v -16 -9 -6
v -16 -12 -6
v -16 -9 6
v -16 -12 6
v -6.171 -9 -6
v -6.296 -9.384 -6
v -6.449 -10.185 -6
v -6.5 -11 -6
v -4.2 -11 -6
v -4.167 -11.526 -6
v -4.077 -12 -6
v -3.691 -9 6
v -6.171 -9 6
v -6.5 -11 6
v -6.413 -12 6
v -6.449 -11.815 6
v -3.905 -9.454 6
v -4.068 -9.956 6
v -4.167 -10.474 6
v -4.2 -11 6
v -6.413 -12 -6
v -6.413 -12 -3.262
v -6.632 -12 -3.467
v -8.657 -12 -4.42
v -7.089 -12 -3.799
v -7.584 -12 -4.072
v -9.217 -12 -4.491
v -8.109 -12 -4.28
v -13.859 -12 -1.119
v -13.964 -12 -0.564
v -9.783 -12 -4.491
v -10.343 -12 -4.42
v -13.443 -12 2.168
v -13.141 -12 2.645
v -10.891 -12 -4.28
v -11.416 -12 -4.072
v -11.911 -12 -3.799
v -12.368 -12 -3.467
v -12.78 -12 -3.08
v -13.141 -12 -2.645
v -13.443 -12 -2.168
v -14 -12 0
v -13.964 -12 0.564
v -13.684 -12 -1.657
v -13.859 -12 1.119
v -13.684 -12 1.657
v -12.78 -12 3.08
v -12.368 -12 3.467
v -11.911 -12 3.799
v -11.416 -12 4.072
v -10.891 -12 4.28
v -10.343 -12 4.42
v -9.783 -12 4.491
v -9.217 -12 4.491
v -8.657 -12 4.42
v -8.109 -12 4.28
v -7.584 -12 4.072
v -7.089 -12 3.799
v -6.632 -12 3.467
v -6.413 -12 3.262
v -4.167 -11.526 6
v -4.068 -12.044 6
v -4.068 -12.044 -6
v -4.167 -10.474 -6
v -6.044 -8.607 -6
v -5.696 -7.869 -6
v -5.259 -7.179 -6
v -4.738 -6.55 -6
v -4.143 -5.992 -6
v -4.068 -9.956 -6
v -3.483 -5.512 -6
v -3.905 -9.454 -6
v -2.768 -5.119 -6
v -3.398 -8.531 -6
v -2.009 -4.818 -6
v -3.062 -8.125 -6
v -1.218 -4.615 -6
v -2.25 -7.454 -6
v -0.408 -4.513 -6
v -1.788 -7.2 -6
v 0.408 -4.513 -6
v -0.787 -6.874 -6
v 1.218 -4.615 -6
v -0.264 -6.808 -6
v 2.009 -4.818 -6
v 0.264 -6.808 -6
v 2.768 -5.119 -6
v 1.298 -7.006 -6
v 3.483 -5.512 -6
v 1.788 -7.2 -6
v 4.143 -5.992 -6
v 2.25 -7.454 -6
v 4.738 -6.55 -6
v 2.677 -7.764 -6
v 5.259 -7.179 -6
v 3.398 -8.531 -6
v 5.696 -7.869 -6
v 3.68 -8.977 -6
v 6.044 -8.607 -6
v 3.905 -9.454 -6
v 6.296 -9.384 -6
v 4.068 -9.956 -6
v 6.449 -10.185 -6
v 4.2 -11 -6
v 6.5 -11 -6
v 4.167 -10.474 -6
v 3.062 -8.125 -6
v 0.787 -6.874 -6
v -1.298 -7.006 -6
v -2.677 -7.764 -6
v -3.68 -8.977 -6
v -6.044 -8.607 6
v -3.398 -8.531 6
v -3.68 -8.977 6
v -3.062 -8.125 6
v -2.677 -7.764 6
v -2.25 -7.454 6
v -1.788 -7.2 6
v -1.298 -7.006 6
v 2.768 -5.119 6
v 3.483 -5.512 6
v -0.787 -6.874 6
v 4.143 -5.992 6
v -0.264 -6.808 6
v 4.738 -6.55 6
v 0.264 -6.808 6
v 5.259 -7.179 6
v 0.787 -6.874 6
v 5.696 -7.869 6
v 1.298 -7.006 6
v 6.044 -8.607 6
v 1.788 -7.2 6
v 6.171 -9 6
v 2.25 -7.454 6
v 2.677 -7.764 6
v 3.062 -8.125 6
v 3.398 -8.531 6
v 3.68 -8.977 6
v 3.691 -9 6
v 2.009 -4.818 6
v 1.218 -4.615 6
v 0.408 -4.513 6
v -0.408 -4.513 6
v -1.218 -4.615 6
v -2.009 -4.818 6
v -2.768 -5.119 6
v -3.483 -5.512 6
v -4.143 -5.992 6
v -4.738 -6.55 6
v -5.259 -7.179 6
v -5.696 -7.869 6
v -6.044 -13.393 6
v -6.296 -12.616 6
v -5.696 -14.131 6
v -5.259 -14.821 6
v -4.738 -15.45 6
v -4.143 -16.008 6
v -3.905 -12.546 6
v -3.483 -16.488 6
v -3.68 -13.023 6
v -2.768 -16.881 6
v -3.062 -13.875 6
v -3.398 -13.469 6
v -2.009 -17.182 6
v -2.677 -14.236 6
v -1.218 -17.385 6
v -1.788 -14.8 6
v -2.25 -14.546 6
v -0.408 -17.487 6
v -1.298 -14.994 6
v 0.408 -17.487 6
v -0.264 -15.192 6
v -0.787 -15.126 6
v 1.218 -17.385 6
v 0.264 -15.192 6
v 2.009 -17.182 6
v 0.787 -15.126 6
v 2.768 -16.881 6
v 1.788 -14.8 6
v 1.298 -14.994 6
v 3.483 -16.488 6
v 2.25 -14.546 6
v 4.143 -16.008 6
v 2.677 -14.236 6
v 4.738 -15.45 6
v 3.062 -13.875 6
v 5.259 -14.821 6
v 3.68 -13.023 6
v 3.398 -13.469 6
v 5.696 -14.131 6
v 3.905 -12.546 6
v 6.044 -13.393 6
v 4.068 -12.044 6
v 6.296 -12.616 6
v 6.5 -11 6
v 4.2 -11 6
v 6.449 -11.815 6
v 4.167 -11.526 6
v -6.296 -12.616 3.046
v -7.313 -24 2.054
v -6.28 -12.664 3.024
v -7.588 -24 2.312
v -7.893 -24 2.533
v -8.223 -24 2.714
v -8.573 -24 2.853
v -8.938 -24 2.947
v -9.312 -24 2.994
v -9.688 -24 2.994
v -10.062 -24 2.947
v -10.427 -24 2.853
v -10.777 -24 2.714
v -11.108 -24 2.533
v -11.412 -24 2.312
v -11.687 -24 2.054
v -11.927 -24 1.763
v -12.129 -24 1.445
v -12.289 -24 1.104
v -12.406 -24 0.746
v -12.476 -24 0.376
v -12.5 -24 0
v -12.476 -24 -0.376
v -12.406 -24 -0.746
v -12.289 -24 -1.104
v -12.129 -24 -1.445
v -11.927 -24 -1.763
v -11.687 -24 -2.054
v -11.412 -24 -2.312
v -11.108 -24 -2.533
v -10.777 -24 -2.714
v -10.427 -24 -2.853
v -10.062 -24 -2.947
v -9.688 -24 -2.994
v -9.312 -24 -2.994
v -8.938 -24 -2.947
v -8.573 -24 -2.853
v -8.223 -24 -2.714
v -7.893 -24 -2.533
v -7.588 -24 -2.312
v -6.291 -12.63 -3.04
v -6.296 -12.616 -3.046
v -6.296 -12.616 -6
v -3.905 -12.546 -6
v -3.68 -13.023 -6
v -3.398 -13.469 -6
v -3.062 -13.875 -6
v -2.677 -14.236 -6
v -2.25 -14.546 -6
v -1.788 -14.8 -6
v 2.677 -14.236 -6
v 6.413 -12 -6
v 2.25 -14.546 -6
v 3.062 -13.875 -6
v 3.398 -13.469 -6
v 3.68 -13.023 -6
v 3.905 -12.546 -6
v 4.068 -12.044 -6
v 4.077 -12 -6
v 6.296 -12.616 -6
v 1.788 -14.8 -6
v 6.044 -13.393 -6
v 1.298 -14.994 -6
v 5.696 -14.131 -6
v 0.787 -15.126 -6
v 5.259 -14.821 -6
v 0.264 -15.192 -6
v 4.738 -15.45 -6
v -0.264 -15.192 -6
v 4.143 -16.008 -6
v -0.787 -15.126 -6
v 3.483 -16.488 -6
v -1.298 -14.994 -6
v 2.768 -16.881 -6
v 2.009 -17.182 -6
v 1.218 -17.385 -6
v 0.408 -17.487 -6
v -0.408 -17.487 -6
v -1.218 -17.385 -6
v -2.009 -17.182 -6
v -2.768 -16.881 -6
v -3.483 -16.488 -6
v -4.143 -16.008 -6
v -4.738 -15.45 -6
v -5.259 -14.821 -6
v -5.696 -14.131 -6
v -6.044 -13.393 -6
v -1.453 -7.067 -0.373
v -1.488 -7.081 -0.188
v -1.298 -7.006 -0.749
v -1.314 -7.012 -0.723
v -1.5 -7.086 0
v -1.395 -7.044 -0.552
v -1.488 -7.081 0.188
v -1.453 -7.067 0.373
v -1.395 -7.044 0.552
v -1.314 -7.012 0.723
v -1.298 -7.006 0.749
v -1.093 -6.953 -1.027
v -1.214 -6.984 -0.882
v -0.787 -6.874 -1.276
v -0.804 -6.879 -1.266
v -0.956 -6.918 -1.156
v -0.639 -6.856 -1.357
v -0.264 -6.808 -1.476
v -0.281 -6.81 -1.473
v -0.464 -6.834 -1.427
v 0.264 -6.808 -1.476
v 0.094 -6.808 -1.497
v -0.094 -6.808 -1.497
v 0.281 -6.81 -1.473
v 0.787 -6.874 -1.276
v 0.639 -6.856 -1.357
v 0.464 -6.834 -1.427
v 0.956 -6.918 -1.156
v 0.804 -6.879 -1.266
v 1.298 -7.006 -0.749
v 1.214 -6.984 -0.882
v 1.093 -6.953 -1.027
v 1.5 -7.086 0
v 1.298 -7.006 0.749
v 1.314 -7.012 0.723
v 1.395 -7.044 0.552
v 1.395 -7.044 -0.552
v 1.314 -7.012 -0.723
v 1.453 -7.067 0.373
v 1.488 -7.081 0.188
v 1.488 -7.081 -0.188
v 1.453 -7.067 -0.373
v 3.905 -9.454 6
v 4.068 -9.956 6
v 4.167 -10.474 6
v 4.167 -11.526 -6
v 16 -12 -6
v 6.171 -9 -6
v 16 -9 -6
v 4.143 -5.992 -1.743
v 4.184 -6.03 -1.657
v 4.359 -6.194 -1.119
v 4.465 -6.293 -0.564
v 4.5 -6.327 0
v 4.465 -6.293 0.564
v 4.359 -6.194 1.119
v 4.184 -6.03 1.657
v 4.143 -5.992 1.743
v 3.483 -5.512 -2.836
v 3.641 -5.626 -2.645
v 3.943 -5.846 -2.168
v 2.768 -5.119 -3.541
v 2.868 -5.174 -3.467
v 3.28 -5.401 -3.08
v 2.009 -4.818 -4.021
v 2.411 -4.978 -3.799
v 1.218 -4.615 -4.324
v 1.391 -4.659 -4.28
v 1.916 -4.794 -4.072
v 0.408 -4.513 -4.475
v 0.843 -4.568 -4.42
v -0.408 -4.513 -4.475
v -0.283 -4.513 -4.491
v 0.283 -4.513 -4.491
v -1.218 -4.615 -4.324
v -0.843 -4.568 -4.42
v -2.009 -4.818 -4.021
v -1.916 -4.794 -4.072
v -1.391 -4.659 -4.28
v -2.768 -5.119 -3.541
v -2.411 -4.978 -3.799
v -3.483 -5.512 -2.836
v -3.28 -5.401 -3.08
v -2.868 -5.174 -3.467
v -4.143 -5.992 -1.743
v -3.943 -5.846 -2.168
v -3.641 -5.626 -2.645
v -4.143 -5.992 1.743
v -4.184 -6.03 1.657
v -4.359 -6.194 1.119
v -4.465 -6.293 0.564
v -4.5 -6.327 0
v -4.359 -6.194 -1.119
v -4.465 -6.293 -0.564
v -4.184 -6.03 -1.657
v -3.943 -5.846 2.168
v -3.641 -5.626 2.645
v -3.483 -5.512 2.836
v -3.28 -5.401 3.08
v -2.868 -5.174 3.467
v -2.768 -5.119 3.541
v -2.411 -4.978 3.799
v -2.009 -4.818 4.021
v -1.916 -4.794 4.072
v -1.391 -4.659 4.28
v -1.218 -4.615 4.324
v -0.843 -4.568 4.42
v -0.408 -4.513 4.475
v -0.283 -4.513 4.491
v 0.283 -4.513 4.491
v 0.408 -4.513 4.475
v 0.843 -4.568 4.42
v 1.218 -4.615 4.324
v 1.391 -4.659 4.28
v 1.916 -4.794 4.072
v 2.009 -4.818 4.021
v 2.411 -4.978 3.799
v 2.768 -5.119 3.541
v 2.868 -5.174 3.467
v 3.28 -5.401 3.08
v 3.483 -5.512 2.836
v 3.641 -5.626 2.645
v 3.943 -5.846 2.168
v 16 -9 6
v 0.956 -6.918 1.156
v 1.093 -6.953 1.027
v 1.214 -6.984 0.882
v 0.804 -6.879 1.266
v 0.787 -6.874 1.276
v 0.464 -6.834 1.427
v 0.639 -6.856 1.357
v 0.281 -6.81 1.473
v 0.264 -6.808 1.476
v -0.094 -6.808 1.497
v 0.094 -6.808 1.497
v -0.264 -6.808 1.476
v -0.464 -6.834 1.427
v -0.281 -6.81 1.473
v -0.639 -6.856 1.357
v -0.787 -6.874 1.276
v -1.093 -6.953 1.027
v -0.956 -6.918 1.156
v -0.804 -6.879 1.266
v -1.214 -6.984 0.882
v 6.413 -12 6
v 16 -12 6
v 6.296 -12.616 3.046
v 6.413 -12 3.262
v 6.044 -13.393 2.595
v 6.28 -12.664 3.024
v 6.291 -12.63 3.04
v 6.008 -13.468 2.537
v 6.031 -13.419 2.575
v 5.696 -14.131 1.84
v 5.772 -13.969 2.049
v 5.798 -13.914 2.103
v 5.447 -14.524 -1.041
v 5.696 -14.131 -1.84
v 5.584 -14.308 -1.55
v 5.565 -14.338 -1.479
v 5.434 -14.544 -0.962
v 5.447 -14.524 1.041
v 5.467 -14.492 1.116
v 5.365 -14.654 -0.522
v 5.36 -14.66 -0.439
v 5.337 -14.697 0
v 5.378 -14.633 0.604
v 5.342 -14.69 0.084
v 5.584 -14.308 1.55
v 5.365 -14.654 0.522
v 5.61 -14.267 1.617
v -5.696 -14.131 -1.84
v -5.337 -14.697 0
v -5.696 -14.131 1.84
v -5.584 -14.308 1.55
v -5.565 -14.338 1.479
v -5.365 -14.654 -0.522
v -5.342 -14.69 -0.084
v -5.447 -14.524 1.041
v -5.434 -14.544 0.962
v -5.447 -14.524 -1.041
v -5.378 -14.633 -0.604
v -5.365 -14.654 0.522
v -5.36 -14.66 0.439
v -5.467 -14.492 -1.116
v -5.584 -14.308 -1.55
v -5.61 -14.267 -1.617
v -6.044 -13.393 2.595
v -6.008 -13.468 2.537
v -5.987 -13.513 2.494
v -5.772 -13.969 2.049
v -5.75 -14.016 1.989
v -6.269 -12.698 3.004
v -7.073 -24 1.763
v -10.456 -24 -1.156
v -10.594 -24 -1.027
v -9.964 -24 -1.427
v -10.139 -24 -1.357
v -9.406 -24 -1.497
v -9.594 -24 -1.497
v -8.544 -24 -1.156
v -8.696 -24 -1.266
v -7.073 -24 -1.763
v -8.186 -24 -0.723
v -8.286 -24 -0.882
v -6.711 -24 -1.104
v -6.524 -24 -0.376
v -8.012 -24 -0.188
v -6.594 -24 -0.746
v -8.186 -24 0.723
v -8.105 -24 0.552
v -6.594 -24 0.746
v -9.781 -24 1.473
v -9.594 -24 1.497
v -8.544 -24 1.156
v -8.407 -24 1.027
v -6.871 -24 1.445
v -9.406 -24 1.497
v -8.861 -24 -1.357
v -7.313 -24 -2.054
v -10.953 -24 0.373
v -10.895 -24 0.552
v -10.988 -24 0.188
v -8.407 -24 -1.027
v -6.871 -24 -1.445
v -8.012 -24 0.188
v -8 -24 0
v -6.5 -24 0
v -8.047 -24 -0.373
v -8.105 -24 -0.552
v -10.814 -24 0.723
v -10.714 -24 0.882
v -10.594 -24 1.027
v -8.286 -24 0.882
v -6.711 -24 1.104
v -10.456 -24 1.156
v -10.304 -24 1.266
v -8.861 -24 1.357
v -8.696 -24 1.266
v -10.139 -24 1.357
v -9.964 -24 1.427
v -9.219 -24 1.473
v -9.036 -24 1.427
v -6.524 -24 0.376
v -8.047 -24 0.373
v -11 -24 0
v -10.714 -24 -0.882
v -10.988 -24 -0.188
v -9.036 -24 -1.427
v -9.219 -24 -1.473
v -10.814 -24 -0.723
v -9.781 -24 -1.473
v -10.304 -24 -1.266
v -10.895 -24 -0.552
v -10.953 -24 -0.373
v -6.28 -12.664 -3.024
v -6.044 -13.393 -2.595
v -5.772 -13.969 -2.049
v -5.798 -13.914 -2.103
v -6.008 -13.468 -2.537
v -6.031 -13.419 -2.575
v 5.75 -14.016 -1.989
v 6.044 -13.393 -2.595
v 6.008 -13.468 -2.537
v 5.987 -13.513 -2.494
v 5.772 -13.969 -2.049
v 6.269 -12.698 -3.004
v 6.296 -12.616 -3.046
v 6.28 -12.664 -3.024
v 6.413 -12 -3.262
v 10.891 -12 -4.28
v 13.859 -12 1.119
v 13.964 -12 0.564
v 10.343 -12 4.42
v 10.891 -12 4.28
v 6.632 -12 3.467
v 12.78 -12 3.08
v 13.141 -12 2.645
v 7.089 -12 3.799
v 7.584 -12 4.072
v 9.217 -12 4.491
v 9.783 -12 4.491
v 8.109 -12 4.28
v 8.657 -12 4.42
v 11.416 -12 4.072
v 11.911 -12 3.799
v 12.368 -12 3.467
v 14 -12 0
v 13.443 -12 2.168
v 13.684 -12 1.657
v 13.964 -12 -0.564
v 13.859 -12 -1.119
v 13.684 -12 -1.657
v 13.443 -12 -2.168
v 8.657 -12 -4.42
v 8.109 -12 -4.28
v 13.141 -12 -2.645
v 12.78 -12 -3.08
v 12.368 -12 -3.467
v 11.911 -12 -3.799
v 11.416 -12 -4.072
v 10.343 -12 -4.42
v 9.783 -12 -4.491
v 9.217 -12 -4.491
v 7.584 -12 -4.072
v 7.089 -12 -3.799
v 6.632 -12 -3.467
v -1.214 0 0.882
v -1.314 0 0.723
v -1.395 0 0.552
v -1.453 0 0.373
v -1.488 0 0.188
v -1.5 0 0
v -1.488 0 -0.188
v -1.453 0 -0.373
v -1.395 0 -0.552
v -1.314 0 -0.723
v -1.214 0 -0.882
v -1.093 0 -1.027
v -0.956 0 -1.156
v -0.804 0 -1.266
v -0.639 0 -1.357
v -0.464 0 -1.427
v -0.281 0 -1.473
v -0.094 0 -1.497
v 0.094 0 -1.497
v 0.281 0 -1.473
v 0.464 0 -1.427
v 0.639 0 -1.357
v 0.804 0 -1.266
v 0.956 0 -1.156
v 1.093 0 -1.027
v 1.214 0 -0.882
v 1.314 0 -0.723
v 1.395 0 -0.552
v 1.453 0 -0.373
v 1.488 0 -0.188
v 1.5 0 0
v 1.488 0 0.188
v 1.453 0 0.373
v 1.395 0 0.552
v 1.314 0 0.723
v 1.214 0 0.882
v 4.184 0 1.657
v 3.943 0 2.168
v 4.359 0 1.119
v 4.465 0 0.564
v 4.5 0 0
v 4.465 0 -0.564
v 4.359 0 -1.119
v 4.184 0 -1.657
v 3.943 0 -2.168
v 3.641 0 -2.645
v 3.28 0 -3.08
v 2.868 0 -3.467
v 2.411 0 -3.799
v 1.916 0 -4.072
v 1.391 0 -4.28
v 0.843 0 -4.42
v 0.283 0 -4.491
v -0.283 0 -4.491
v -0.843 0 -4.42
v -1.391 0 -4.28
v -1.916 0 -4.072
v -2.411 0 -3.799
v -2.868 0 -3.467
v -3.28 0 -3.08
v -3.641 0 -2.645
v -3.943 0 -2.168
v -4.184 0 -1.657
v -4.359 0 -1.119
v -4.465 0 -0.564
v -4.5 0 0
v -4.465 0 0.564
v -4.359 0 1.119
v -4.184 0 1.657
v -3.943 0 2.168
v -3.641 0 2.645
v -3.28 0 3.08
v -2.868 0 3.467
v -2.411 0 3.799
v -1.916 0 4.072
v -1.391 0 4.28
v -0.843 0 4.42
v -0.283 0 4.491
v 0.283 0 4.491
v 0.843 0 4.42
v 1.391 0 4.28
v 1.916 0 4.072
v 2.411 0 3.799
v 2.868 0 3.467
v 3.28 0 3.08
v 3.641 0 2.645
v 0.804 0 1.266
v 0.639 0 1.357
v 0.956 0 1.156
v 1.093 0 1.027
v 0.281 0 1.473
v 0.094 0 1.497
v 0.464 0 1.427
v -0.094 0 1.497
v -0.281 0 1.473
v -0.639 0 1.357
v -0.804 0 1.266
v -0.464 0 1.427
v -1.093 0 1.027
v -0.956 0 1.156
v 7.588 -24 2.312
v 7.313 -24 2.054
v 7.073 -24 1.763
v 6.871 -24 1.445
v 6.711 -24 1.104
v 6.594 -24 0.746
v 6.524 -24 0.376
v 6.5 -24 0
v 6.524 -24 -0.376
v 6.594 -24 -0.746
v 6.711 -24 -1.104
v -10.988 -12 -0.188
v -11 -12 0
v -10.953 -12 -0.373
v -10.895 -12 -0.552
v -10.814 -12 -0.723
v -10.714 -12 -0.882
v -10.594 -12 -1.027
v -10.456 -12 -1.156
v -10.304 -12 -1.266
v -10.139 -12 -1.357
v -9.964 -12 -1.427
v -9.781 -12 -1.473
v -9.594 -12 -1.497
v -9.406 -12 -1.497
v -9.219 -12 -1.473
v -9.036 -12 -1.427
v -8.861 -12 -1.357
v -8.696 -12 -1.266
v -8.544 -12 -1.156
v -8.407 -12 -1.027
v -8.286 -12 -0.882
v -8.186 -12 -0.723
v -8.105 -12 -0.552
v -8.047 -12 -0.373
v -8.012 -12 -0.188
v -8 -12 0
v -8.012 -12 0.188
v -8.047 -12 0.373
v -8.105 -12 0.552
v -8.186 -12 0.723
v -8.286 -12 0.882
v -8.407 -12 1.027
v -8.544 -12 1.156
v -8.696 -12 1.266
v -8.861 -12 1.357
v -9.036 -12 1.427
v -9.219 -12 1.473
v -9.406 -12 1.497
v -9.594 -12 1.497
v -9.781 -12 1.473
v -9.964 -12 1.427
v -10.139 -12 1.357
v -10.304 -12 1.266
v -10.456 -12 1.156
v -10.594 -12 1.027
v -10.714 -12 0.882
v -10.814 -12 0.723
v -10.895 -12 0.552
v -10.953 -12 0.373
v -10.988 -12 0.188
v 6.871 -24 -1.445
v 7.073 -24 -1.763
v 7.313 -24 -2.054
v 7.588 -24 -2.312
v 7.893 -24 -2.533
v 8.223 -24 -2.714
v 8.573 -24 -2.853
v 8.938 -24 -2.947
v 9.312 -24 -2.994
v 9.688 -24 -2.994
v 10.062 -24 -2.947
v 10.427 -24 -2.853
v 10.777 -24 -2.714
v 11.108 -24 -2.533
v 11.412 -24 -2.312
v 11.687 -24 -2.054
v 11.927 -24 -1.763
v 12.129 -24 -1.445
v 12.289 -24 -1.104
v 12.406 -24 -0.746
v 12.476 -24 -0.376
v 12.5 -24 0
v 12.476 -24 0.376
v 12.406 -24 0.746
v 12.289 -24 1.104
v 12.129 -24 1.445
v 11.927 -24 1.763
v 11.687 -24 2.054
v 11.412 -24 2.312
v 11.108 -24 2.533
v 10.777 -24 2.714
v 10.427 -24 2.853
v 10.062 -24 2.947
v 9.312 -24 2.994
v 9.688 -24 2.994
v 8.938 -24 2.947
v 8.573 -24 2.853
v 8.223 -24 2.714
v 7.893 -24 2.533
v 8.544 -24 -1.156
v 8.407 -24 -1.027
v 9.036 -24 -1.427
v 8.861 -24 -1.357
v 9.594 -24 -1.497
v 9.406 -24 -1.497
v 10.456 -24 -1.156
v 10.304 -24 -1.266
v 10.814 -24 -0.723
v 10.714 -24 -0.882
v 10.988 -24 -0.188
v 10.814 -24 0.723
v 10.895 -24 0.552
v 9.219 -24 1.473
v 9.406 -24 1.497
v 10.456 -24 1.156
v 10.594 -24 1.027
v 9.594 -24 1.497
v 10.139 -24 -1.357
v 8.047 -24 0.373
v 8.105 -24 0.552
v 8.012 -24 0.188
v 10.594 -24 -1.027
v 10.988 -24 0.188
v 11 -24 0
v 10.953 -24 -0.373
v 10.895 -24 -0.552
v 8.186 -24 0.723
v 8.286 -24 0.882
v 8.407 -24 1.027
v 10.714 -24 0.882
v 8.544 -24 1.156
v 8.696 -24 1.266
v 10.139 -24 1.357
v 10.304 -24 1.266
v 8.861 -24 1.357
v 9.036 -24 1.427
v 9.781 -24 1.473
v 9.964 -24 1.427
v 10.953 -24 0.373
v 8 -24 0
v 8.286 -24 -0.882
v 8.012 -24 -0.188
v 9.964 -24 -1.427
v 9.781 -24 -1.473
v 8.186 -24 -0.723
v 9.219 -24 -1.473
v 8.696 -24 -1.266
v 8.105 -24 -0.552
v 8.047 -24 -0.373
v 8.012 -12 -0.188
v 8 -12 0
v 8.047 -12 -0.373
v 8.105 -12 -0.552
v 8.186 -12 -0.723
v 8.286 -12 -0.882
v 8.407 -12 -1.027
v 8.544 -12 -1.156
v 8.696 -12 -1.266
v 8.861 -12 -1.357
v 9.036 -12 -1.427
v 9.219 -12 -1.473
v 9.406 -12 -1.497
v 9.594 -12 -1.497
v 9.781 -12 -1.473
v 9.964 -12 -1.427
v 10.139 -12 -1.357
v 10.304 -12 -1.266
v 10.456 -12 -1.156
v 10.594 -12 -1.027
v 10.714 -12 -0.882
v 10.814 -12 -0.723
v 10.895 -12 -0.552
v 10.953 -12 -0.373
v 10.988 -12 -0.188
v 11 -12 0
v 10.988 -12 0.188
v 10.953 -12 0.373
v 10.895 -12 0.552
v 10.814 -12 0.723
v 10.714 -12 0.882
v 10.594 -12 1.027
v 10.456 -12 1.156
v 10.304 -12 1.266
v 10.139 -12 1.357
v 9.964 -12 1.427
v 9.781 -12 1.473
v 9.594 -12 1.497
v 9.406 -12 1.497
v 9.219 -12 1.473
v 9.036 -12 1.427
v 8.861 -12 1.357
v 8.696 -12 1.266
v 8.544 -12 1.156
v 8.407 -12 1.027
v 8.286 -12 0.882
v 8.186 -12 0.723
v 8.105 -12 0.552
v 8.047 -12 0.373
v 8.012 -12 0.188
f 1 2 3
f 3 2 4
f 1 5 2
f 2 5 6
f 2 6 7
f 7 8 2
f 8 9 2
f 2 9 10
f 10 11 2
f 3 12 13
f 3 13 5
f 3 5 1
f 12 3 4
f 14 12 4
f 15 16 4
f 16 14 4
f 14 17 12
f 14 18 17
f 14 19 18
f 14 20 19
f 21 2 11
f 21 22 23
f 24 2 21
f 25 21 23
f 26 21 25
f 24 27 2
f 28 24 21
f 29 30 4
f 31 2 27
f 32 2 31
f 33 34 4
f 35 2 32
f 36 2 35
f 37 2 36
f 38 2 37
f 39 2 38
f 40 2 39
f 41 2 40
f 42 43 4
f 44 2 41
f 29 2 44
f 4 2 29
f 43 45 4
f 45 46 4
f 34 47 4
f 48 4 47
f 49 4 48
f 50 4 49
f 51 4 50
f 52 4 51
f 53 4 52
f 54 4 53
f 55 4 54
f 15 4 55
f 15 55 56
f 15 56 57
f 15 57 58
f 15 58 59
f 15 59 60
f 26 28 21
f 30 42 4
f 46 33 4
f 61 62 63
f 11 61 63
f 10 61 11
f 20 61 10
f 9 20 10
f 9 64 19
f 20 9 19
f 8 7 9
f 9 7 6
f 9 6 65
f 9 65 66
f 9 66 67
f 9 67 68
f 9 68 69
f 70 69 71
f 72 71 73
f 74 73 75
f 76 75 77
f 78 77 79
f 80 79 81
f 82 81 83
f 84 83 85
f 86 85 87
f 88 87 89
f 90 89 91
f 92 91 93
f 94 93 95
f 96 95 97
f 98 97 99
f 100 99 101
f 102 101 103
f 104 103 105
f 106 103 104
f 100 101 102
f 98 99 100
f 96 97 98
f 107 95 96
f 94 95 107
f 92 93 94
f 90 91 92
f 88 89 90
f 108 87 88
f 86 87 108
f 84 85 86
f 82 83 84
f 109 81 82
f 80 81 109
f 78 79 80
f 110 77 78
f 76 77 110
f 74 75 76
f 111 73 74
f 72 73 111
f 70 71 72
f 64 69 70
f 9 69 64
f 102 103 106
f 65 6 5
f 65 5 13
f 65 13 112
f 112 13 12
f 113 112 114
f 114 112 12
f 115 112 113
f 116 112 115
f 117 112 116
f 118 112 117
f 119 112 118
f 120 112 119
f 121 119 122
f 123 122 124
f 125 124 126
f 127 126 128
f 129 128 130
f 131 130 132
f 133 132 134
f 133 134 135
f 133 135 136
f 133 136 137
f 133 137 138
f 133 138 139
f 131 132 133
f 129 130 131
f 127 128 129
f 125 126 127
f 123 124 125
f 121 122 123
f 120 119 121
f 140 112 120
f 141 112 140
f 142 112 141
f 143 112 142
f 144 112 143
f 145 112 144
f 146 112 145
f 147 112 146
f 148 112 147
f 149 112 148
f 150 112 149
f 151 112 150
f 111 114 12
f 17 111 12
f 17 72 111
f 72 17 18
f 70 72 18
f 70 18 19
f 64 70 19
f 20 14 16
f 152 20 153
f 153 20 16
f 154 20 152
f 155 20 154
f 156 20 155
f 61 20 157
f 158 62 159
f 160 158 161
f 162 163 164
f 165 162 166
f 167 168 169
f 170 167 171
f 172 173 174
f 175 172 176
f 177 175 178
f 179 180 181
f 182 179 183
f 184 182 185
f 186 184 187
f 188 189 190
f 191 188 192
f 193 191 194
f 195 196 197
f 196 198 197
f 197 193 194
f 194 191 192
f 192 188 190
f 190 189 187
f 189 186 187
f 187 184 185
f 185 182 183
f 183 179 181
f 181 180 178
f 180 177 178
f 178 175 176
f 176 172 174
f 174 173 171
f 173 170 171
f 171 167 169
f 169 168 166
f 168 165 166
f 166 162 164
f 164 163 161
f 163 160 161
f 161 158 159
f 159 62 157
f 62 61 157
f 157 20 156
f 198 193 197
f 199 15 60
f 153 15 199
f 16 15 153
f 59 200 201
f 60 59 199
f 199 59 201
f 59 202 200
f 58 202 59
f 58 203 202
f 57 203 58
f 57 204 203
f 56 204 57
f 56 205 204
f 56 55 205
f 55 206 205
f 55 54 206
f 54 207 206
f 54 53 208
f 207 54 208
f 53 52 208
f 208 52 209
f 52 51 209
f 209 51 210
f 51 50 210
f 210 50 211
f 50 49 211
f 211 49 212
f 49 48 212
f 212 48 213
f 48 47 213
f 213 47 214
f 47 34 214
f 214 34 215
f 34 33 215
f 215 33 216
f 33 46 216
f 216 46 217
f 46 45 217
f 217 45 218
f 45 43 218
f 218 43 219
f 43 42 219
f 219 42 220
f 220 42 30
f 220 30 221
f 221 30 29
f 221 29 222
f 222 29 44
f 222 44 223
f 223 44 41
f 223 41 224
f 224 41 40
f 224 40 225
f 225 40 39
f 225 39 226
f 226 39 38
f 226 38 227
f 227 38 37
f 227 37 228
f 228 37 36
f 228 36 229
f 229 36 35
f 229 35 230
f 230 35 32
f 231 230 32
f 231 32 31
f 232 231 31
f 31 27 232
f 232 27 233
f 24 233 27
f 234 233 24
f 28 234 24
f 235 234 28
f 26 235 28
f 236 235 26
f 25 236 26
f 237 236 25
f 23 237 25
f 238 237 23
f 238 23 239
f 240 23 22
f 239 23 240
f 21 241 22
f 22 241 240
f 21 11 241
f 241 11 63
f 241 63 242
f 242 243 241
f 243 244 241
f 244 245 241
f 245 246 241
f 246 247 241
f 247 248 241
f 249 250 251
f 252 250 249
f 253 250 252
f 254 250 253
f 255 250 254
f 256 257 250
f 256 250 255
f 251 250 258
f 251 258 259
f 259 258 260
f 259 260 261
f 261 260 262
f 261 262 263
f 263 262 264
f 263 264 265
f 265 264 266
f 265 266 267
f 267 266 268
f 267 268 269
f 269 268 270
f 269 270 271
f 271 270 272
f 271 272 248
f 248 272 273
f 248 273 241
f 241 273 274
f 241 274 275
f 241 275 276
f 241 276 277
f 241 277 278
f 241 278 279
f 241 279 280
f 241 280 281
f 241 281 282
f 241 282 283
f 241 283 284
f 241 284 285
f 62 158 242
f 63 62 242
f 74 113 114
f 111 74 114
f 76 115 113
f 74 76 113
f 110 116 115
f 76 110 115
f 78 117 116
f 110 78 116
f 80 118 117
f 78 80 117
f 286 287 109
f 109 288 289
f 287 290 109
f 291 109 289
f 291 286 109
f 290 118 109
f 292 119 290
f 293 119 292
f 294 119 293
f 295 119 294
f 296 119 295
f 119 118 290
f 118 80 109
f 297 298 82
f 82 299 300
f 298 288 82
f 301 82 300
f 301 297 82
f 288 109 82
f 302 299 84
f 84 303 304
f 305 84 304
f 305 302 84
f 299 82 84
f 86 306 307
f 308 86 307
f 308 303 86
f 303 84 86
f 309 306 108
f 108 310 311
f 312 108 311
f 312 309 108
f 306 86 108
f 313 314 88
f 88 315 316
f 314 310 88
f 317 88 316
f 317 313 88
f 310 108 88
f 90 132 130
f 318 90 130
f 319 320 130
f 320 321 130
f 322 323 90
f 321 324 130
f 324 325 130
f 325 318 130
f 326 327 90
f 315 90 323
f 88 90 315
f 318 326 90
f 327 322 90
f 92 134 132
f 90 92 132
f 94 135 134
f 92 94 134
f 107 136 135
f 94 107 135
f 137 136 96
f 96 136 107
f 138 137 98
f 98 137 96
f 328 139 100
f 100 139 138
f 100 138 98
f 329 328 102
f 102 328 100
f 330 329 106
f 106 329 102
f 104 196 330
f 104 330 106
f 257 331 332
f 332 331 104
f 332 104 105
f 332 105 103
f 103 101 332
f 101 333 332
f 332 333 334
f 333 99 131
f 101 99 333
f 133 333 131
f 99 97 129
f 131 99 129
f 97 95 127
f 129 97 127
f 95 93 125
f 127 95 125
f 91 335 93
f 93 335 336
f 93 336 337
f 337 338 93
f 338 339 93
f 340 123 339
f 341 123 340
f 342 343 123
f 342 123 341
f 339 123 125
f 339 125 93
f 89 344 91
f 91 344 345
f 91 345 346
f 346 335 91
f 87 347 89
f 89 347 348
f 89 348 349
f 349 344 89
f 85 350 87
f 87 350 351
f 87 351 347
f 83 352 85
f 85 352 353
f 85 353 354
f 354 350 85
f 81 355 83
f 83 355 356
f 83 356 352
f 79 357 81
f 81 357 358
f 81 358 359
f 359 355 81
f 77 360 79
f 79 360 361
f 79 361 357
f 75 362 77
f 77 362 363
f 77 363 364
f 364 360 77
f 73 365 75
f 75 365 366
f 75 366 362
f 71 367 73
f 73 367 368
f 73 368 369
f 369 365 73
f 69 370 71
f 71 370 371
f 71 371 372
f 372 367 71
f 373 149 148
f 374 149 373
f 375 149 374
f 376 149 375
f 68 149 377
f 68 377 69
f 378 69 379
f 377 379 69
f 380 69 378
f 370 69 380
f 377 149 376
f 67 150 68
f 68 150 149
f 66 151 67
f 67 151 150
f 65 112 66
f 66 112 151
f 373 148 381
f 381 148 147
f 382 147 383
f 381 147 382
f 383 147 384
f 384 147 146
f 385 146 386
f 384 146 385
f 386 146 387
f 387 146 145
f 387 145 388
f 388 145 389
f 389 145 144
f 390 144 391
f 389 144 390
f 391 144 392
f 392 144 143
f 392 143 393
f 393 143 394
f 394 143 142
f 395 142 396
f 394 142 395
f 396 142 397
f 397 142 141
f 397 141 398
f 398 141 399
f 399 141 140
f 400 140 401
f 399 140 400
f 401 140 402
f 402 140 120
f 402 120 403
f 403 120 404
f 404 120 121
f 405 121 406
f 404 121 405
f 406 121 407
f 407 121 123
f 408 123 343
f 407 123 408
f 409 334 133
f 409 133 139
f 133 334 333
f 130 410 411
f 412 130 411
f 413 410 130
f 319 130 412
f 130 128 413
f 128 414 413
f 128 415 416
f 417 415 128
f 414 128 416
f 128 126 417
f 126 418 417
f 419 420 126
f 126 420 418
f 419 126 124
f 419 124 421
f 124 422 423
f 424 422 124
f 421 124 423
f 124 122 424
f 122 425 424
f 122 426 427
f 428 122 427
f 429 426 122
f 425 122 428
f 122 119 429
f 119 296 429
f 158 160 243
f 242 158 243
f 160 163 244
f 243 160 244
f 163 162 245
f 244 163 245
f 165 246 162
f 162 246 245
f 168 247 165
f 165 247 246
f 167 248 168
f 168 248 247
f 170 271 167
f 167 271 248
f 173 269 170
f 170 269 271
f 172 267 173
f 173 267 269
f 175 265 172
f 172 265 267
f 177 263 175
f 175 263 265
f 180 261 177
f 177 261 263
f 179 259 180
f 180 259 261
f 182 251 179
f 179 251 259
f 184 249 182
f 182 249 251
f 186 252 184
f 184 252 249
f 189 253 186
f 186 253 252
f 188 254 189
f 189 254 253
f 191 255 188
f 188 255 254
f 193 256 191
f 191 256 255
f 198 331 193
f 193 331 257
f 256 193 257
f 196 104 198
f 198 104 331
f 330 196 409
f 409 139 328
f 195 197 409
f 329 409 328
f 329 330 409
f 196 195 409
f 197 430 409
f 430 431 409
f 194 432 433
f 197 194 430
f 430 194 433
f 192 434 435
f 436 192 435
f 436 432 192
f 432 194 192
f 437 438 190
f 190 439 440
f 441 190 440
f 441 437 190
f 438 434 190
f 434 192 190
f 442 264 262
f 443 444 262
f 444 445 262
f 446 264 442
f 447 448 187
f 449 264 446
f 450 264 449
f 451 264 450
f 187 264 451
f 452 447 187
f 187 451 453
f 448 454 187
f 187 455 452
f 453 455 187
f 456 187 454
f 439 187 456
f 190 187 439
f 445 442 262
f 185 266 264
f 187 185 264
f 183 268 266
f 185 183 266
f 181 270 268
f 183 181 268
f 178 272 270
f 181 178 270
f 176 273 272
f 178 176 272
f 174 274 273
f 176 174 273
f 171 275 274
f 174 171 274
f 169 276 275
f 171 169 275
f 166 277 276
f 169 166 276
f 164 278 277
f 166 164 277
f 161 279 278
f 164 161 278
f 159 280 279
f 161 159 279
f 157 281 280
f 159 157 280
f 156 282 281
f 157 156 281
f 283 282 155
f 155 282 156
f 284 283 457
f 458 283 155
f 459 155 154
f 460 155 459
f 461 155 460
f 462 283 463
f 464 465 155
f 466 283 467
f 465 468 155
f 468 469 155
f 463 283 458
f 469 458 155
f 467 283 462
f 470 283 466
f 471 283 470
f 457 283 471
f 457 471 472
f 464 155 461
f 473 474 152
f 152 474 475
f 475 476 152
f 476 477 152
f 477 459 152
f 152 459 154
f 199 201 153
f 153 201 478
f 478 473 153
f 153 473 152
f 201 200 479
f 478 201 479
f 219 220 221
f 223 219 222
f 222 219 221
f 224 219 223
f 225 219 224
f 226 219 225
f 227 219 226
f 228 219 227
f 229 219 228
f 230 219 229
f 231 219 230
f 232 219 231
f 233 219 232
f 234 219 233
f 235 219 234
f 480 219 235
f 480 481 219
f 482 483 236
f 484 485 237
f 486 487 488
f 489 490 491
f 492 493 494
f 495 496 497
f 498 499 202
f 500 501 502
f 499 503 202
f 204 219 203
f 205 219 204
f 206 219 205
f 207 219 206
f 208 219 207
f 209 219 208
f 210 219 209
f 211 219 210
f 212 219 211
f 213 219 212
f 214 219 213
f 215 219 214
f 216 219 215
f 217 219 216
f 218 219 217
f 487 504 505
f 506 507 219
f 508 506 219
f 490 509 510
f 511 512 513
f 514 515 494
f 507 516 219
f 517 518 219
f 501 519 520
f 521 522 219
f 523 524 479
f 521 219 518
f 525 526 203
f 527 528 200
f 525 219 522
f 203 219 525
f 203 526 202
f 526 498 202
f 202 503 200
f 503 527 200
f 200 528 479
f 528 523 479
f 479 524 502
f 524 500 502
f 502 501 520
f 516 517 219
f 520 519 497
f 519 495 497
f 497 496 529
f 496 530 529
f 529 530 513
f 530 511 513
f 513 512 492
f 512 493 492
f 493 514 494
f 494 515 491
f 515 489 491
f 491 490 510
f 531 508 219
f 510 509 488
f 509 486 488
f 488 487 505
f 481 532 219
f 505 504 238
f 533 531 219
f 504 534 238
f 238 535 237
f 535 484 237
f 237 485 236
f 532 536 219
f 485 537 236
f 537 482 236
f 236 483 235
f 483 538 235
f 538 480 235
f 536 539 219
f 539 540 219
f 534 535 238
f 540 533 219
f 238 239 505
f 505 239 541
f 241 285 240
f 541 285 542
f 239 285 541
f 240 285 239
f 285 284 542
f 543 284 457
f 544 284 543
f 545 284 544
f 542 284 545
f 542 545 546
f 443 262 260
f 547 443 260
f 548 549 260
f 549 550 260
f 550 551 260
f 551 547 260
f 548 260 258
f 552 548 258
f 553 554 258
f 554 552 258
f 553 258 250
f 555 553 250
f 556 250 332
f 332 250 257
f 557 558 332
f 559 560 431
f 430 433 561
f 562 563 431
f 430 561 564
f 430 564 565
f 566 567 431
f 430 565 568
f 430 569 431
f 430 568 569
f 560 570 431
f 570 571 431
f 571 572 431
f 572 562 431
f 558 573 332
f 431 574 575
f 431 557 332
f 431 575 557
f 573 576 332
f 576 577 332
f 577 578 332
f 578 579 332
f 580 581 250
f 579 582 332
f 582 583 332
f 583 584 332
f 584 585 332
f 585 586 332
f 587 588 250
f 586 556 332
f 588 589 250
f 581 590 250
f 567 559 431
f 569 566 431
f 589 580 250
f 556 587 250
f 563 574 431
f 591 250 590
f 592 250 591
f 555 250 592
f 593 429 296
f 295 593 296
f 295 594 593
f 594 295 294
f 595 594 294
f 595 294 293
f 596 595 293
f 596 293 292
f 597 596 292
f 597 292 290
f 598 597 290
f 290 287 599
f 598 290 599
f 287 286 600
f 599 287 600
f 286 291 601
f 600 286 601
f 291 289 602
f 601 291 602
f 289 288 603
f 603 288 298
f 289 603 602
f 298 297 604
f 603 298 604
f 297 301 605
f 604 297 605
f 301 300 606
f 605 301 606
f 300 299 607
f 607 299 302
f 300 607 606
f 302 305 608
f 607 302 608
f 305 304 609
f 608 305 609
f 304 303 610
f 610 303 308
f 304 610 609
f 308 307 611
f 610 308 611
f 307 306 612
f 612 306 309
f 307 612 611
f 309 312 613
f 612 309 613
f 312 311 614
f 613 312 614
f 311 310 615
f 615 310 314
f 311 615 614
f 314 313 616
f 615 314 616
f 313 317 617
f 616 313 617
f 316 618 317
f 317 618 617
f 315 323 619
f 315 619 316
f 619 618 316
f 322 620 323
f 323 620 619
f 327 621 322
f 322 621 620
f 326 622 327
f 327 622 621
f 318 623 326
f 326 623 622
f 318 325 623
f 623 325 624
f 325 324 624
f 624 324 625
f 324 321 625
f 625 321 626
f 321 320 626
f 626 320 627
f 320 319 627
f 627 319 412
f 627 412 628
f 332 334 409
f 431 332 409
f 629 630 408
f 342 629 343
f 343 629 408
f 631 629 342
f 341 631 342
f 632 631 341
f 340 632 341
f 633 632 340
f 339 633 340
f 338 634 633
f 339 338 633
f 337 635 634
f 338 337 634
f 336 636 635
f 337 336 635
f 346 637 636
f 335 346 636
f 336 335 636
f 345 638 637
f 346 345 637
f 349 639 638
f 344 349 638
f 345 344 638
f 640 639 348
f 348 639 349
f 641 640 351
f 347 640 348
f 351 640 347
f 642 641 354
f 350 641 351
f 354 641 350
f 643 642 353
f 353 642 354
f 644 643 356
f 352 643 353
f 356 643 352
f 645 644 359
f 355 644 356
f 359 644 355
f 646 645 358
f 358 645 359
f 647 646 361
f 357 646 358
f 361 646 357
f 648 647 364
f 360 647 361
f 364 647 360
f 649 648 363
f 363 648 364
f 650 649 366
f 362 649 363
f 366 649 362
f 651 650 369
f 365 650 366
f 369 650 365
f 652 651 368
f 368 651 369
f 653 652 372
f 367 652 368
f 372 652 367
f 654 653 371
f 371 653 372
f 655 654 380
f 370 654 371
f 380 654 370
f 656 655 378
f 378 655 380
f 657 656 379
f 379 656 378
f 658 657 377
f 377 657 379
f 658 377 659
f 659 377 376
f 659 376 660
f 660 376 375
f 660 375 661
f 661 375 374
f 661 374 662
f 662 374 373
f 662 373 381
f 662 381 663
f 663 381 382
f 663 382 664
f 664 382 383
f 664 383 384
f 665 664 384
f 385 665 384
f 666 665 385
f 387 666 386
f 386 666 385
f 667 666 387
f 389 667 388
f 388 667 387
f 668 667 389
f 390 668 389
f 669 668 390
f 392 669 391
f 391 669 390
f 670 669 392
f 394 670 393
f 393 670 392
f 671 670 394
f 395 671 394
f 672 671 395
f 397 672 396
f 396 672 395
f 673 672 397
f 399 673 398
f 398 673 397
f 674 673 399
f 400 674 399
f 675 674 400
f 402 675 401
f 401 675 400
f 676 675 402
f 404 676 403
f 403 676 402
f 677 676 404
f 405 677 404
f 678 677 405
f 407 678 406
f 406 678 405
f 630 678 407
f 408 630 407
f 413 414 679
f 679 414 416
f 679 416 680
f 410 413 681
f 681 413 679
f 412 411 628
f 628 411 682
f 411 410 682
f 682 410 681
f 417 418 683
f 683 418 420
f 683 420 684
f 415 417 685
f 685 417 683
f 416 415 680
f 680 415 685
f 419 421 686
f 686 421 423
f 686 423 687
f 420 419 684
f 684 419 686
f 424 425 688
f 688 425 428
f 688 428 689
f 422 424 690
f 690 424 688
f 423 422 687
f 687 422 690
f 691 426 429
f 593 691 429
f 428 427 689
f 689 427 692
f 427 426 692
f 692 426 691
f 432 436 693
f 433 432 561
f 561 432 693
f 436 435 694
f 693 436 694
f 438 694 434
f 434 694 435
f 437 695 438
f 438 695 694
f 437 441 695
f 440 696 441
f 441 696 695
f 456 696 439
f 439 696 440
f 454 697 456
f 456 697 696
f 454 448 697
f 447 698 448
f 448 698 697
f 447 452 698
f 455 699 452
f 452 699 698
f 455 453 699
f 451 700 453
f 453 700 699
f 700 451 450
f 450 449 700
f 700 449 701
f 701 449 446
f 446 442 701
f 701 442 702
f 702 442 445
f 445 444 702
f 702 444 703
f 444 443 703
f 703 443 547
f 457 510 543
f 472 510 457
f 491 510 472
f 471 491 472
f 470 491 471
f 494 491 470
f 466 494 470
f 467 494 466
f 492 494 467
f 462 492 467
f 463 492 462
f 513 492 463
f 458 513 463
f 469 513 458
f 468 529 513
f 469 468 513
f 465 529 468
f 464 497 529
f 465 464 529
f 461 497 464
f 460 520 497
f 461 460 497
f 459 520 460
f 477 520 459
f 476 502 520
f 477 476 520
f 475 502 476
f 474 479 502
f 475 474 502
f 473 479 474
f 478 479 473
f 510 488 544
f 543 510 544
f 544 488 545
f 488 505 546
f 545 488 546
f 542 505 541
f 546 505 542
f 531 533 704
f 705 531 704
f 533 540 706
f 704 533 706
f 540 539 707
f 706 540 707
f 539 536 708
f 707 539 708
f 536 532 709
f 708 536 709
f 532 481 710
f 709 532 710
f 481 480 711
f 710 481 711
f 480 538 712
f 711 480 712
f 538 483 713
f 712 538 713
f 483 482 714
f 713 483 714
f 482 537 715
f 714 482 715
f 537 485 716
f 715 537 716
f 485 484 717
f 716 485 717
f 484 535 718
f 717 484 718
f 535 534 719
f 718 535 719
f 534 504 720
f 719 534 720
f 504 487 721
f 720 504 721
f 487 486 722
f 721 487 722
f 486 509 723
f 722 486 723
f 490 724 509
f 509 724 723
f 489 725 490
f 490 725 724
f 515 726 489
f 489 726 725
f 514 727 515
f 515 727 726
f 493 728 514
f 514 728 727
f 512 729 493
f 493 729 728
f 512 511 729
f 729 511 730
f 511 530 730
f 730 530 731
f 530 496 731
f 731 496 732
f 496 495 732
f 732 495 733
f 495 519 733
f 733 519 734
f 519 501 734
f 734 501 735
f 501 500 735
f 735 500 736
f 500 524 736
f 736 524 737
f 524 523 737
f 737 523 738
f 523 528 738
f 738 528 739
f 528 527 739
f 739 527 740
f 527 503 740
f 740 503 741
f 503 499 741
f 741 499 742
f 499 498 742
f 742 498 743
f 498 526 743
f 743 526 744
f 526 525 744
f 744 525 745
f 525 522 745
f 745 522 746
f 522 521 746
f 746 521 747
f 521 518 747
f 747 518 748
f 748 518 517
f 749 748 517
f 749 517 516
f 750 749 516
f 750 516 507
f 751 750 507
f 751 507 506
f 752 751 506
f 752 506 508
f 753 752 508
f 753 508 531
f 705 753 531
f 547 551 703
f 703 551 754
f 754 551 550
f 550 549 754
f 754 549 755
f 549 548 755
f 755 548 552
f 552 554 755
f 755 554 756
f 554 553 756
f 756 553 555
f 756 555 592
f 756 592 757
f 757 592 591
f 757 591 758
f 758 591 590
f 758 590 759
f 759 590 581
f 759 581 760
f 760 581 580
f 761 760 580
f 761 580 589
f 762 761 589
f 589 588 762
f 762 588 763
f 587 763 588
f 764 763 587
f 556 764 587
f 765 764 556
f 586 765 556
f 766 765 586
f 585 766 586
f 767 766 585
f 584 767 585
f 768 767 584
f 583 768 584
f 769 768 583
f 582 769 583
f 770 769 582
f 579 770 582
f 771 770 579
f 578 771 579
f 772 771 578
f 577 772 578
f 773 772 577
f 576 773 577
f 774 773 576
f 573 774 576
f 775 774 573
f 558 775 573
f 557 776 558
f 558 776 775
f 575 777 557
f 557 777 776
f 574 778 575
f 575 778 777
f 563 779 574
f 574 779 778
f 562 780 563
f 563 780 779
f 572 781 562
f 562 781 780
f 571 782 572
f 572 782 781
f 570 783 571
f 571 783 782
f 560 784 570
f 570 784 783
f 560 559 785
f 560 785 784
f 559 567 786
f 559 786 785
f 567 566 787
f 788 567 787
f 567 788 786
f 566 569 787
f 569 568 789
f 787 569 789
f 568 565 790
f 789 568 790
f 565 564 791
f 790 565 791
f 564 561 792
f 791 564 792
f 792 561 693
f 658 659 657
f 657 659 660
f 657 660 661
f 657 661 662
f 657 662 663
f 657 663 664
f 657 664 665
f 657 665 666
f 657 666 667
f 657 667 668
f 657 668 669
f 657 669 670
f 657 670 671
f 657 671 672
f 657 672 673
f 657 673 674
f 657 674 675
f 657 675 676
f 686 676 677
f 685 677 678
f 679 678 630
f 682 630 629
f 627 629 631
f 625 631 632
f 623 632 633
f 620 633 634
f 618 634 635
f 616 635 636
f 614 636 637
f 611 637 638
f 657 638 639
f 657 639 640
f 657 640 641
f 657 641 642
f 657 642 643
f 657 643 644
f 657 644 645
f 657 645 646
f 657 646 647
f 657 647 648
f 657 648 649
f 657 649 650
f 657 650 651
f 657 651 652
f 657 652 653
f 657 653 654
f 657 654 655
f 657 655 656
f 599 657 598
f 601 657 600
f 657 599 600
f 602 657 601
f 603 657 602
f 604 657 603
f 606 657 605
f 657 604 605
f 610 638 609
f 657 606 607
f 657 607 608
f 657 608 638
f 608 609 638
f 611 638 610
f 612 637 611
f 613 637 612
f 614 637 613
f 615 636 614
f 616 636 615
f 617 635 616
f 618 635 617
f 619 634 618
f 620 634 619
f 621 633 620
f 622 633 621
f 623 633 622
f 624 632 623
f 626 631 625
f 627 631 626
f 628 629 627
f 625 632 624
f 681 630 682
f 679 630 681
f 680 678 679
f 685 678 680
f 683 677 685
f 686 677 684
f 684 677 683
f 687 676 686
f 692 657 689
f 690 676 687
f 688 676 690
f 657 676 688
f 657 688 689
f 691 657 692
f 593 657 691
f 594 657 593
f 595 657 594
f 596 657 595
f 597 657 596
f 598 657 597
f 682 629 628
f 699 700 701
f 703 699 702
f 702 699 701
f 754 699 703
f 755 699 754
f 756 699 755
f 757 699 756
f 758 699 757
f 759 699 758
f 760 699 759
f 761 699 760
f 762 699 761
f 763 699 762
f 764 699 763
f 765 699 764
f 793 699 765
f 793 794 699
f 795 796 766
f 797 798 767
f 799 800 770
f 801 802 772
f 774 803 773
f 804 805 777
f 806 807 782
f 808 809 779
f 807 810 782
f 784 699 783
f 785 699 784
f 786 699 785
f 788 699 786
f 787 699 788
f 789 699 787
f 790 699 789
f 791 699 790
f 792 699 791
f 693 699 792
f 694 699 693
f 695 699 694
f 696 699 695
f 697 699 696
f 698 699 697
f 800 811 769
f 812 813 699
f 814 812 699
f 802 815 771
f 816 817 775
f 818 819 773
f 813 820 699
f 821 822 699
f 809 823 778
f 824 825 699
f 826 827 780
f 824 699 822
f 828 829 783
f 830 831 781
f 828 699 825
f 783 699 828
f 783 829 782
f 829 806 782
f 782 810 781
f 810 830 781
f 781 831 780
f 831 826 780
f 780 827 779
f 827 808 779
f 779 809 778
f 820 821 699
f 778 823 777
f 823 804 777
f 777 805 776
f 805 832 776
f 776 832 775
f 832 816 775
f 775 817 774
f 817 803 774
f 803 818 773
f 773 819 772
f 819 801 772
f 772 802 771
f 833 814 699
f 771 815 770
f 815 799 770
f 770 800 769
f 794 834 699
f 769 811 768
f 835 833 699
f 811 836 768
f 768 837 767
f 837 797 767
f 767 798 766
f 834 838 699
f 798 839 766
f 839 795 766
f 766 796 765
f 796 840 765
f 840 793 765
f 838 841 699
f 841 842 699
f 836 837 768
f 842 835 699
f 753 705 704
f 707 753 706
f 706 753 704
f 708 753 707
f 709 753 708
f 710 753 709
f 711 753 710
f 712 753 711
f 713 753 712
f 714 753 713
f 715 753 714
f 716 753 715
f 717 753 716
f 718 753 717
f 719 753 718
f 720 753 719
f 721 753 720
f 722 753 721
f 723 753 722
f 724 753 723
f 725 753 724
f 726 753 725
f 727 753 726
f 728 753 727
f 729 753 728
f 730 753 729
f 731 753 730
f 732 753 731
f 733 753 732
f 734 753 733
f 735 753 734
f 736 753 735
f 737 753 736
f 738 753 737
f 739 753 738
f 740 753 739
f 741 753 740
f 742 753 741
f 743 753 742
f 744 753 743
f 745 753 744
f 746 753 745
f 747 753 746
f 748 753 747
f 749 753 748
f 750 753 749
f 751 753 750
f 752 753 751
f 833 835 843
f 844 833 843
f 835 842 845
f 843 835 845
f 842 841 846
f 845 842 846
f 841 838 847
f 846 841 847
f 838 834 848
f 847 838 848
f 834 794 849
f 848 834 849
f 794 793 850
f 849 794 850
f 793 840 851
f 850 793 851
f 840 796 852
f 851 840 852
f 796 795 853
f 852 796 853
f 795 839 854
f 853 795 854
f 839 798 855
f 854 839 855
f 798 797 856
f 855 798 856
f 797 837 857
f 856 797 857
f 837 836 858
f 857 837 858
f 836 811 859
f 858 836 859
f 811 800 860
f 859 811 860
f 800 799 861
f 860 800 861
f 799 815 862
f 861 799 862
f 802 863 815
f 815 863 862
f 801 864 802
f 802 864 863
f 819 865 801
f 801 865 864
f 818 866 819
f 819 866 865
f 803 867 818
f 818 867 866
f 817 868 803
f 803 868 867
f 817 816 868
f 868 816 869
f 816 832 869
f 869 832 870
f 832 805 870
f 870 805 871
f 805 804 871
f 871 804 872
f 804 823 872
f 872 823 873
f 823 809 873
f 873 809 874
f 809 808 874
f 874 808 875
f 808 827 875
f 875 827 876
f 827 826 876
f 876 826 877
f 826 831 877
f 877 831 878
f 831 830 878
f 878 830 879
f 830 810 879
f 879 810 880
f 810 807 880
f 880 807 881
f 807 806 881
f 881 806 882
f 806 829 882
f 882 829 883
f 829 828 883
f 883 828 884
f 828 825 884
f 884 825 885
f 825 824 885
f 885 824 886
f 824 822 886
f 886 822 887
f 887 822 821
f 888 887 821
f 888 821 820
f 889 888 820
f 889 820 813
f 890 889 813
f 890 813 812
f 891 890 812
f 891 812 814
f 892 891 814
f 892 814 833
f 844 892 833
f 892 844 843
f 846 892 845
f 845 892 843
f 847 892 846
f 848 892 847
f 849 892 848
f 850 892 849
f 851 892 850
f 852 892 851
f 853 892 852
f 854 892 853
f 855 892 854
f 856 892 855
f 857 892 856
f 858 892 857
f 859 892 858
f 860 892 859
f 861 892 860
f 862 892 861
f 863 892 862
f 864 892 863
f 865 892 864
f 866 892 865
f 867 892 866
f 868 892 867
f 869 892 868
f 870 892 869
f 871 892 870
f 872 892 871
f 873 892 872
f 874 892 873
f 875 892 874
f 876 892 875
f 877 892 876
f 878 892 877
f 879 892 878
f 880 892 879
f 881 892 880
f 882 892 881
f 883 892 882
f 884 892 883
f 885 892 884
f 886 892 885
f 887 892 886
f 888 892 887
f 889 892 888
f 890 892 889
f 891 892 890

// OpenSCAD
// Variables

screwSpace = 19;



// Constants 
$fn = 50;

//translate([40.7, 0, 17.6]) import("endstop-official.stl", convexity=60);


// Functions/Modules
module mount() {
    difference() {
        cylinder(h=12, r1=4.5, r2=3); 
        translate([0, 0, -1]) {
            cylinder(h=14, r=1.5);
        }        
    }
}
module mainSection() {
    // Bott Cylinder
    difference() {
        union() {
            cylinder(h=8, r=4.5);
            // Center Cylinder
            translate([0, 6, 11]) {
                rotate([90, 0, 0]) {
                    cylinder(h=12, r=6.5);
                }
            }
        }
        translate([0, 0, -1]) cylinder(h=10, r=1.5);
    }
    // Centre plane
    translate([-16, -6, 9]) {
        cube([32, 12, 3]);
    }
}


// Main Code
rotate([90, 0, 0]) {
    difference() {
        mainSection();
        translate([0, 16, 11]) rotate([90, 0, 0]) cylinder(h=34, r=4.2);
    }
    translate([screwSpace/2, 0, 12]) { 
        mount();
    }
    translate([-(screwSpace/2), 0, 12]) { 
        mount();
    }
}
